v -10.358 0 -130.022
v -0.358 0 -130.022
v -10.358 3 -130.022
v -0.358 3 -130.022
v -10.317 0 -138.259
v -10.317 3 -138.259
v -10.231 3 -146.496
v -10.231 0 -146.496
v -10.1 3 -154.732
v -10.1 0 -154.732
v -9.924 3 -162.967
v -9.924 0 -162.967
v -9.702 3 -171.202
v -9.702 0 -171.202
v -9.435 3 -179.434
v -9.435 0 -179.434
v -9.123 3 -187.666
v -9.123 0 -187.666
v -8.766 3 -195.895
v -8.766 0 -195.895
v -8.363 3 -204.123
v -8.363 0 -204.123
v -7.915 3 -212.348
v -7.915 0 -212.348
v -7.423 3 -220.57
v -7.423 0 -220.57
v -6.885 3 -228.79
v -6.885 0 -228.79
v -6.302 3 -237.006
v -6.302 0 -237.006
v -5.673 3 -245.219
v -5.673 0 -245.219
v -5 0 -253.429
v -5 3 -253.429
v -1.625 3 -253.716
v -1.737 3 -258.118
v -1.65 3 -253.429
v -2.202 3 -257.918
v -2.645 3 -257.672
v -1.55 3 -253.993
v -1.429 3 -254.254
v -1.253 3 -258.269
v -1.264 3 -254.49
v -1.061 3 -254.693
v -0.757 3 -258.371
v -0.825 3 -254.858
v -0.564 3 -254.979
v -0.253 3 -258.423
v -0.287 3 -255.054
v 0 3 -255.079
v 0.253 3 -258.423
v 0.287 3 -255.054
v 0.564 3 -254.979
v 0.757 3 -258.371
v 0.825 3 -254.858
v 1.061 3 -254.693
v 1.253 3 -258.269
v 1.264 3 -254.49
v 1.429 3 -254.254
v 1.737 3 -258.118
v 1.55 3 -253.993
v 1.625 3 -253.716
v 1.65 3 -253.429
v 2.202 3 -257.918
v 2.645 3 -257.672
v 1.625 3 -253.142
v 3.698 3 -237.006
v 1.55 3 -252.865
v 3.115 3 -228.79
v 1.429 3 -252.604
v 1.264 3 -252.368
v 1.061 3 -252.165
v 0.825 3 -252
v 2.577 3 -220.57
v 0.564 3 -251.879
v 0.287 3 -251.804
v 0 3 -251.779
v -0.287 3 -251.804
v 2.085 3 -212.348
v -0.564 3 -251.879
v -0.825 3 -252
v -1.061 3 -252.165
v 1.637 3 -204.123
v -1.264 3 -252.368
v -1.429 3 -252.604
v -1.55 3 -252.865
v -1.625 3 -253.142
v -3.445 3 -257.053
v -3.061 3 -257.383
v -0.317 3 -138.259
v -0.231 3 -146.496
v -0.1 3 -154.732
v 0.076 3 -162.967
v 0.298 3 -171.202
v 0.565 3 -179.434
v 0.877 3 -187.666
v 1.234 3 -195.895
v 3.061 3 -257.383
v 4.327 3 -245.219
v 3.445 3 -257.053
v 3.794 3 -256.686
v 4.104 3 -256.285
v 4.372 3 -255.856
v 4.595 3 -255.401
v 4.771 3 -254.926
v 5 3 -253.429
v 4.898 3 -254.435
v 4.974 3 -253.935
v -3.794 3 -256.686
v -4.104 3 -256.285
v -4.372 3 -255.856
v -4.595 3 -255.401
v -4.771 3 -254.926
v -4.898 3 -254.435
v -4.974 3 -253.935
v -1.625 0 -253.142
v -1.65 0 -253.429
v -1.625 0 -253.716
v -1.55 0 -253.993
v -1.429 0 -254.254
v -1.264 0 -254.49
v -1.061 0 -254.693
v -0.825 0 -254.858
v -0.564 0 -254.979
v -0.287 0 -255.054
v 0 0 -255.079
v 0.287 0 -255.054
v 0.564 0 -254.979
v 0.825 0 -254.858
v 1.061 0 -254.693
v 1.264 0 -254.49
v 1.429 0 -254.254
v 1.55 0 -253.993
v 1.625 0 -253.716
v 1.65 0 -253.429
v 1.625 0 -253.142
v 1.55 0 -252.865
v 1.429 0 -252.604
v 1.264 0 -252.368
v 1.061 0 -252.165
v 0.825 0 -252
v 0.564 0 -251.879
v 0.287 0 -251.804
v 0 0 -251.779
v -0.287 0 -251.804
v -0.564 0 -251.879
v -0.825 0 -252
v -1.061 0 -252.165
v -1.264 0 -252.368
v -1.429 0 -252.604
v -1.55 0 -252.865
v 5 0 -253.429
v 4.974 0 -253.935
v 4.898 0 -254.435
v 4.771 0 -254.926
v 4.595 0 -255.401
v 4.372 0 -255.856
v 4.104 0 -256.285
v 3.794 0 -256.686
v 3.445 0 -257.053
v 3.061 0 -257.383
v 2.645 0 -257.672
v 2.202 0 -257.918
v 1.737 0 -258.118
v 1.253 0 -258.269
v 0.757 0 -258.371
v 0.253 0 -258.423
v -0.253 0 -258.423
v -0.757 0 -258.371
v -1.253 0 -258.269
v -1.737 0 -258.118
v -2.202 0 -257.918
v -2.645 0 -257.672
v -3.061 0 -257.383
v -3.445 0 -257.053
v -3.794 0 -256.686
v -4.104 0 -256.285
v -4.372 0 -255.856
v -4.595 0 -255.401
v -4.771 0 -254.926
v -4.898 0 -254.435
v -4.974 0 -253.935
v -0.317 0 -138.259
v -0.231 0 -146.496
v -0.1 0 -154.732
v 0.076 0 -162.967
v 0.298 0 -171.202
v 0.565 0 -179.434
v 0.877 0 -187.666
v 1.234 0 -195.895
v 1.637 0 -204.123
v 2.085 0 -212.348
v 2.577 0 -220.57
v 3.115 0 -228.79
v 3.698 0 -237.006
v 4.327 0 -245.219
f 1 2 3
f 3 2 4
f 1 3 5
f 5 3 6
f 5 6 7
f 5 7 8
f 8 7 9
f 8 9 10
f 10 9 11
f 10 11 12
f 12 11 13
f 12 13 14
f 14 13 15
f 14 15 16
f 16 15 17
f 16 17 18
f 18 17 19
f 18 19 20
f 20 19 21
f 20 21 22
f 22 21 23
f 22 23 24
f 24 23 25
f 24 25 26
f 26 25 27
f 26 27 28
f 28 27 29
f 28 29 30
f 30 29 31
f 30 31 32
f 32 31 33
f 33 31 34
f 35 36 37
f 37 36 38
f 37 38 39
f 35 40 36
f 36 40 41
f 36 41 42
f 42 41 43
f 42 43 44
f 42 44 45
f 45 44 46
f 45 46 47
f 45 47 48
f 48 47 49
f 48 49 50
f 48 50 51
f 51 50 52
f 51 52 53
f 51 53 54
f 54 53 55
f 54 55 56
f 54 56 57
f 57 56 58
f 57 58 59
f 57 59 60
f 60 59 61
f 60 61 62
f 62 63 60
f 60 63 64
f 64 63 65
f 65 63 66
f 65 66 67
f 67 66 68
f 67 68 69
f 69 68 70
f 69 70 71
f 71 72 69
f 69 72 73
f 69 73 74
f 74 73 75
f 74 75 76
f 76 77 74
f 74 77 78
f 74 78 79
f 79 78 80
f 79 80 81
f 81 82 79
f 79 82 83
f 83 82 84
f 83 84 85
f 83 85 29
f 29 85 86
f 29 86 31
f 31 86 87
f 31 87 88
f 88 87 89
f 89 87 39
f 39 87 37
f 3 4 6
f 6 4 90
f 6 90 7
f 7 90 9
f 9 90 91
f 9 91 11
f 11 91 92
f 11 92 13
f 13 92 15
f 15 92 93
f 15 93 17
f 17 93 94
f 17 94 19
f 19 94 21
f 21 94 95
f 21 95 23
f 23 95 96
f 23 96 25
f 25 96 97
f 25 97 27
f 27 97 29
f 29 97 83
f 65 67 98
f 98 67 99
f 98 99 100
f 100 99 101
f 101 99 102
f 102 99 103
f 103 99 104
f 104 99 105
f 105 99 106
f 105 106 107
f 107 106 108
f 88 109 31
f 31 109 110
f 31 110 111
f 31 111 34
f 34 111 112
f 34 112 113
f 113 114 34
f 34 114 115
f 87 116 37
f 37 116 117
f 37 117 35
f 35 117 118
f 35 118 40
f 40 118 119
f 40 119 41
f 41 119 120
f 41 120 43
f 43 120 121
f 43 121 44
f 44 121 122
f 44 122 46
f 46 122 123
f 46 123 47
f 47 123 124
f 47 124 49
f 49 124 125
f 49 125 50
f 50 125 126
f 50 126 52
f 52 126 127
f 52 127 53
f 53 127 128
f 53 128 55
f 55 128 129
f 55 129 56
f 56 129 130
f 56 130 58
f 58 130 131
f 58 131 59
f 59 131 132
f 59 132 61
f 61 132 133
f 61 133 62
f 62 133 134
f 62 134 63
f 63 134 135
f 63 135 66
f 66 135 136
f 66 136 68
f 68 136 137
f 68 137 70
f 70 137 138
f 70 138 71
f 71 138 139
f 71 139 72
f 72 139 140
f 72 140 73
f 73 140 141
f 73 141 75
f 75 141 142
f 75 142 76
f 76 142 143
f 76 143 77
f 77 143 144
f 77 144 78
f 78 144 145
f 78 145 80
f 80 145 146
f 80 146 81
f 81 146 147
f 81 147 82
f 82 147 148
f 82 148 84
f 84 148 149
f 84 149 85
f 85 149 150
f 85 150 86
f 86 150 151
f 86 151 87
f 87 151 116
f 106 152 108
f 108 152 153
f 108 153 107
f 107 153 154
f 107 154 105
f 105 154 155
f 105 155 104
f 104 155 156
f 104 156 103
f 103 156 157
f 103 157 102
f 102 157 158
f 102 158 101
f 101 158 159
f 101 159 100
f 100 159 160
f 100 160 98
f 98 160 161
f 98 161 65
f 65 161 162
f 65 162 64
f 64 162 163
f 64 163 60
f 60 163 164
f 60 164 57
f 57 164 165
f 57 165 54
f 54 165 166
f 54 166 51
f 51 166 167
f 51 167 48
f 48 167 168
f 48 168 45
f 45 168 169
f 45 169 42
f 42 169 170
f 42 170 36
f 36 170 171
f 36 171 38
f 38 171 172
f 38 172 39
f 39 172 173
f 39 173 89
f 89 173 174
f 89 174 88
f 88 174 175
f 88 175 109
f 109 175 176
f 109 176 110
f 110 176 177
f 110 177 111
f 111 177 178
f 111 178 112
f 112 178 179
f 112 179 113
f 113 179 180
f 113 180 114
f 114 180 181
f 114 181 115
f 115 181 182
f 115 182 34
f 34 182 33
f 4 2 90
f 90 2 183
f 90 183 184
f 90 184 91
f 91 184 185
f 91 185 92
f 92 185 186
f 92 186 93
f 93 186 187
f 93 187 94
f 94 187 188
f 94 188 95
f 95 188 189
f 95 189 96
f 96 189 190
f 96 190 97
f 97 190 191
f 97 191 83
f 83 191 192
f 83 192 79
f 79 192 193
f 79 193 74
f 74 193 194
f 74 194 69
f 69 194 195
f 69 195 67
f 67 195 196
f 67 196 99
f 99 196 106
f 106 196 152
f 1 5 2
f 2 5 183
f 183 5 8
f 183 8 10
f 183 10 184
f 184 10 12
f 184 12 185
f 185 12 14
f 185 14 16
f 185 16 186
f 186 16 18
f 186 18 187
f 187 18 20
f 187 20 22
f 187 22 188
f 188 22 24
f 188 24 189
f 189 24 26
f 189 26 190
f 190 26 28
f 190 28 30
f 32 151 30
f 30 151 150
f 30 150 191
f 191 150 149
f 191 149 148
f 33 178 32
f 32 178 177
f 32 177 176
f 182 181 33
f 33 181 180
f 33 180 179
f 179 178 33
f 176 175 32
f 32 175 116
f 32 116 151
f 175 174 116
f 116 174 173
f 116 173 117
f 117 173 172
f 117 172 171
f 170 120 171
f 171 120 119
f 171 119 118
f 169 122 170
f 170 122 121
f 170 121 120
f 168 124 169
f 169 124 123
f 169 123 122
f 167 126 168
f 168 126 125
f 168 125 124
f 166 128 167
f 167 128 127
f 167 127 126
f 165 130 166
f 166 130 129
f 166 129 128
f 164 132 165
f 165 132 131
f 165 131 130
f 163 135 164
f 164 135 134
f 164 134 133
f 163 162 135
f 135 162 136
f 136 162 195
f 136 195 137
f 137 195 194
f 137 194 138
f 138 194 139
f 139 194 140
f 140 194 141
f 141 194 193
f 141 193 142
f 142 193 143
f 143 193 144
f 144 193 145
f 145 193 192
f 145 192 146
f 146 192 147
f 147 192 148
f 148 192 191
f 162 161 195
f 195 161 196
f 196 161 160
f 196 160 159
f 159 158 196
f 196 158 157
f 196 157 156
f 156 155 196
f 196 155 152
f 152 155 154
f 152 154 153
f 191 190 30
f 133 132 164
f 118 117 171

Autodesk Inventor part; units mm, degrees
ref_plane "YZ Plane" through (0, 0, 0) normal (1, 0, 0) x (0, 1, 0)
ref_plane "XZ Plane" through (0, 0, 0) normal (0, 1, 0) x (-1, 0, 0)
ref_plane "XY Plane" through (0, 0, 0) normal (0, 0, 1) x (1, 0, 0)
sketch "Sketch1" plane through (0, 0, 0) normal (0, 1, 0) x (-1, 0, 0)
  line L0 (0, 0) -> (0, -253.429) construction
  line L1 (5, 0) -> (5, -253.429)
  line L2 (-5, -253.429) -> (-5, 0)
  arc A0 (5, 0) -> (-5, 0) centre (0, 0) ccw
  arc A1 (-5, -253.429) -> (5, -253.429) centre (0, -253.429) ccw
  circle A2 centre (0, 0) radius 1.65
  circle A3 centre (0, -253.429) radius 1.65
  arc A4 (5, -253.429) -> (5, 0) centre (-1489.6382, -126.7145) ccw
  arc A5 (-5, -253.429) -> (-5, 0) centre (-1499.6382, -126.7145) ccw
  point P0 (0, -126.7145)
  dimension "d0" = 3.3
  dimension "d1" = 3.3
  dimension "d2" = 10
  dimension "d3" = 253.429
  dimension "d16" = 1500
  dimension "d17" = 1500
extrude "Extrusion1" add sketch "Sketch1" along normal blind 3 contours A4 L1 | L1 A1 A5 A0
sketch "Sketch2" plane through (0, 3, 0) normal (0, 1, 0) x (1, 0, 0)
  line L0 (-27.9396, 271.9091) -> (26.8888, 271.9091)
  line L1 (26.8888, 271.9091) -> (26.8888, 130.022)
  line L2 (26.8888, 130.022) -> (-27.9396, 130.022)
  line L3 (-27.9396, 130.022) -> (-27.9396, 271.9091)
  line L4 (-79.0634, 296.7301) -> (75.0489, 296.7301)
  line L5 (75.0489, 296.7301) -> (75.0489, -47.4295)
  line L6 (75.0489, -47.4295) -> (-79.0634, -47.4295)
  line L7 (-79.0634, -47.4295) -> (-79.0634, 296.7301)
  point P0 (0, 0)
extrude "Extrusion2" cut sketch "Sketch2" against normal blind 10
properties part number "Part_8_p2"
